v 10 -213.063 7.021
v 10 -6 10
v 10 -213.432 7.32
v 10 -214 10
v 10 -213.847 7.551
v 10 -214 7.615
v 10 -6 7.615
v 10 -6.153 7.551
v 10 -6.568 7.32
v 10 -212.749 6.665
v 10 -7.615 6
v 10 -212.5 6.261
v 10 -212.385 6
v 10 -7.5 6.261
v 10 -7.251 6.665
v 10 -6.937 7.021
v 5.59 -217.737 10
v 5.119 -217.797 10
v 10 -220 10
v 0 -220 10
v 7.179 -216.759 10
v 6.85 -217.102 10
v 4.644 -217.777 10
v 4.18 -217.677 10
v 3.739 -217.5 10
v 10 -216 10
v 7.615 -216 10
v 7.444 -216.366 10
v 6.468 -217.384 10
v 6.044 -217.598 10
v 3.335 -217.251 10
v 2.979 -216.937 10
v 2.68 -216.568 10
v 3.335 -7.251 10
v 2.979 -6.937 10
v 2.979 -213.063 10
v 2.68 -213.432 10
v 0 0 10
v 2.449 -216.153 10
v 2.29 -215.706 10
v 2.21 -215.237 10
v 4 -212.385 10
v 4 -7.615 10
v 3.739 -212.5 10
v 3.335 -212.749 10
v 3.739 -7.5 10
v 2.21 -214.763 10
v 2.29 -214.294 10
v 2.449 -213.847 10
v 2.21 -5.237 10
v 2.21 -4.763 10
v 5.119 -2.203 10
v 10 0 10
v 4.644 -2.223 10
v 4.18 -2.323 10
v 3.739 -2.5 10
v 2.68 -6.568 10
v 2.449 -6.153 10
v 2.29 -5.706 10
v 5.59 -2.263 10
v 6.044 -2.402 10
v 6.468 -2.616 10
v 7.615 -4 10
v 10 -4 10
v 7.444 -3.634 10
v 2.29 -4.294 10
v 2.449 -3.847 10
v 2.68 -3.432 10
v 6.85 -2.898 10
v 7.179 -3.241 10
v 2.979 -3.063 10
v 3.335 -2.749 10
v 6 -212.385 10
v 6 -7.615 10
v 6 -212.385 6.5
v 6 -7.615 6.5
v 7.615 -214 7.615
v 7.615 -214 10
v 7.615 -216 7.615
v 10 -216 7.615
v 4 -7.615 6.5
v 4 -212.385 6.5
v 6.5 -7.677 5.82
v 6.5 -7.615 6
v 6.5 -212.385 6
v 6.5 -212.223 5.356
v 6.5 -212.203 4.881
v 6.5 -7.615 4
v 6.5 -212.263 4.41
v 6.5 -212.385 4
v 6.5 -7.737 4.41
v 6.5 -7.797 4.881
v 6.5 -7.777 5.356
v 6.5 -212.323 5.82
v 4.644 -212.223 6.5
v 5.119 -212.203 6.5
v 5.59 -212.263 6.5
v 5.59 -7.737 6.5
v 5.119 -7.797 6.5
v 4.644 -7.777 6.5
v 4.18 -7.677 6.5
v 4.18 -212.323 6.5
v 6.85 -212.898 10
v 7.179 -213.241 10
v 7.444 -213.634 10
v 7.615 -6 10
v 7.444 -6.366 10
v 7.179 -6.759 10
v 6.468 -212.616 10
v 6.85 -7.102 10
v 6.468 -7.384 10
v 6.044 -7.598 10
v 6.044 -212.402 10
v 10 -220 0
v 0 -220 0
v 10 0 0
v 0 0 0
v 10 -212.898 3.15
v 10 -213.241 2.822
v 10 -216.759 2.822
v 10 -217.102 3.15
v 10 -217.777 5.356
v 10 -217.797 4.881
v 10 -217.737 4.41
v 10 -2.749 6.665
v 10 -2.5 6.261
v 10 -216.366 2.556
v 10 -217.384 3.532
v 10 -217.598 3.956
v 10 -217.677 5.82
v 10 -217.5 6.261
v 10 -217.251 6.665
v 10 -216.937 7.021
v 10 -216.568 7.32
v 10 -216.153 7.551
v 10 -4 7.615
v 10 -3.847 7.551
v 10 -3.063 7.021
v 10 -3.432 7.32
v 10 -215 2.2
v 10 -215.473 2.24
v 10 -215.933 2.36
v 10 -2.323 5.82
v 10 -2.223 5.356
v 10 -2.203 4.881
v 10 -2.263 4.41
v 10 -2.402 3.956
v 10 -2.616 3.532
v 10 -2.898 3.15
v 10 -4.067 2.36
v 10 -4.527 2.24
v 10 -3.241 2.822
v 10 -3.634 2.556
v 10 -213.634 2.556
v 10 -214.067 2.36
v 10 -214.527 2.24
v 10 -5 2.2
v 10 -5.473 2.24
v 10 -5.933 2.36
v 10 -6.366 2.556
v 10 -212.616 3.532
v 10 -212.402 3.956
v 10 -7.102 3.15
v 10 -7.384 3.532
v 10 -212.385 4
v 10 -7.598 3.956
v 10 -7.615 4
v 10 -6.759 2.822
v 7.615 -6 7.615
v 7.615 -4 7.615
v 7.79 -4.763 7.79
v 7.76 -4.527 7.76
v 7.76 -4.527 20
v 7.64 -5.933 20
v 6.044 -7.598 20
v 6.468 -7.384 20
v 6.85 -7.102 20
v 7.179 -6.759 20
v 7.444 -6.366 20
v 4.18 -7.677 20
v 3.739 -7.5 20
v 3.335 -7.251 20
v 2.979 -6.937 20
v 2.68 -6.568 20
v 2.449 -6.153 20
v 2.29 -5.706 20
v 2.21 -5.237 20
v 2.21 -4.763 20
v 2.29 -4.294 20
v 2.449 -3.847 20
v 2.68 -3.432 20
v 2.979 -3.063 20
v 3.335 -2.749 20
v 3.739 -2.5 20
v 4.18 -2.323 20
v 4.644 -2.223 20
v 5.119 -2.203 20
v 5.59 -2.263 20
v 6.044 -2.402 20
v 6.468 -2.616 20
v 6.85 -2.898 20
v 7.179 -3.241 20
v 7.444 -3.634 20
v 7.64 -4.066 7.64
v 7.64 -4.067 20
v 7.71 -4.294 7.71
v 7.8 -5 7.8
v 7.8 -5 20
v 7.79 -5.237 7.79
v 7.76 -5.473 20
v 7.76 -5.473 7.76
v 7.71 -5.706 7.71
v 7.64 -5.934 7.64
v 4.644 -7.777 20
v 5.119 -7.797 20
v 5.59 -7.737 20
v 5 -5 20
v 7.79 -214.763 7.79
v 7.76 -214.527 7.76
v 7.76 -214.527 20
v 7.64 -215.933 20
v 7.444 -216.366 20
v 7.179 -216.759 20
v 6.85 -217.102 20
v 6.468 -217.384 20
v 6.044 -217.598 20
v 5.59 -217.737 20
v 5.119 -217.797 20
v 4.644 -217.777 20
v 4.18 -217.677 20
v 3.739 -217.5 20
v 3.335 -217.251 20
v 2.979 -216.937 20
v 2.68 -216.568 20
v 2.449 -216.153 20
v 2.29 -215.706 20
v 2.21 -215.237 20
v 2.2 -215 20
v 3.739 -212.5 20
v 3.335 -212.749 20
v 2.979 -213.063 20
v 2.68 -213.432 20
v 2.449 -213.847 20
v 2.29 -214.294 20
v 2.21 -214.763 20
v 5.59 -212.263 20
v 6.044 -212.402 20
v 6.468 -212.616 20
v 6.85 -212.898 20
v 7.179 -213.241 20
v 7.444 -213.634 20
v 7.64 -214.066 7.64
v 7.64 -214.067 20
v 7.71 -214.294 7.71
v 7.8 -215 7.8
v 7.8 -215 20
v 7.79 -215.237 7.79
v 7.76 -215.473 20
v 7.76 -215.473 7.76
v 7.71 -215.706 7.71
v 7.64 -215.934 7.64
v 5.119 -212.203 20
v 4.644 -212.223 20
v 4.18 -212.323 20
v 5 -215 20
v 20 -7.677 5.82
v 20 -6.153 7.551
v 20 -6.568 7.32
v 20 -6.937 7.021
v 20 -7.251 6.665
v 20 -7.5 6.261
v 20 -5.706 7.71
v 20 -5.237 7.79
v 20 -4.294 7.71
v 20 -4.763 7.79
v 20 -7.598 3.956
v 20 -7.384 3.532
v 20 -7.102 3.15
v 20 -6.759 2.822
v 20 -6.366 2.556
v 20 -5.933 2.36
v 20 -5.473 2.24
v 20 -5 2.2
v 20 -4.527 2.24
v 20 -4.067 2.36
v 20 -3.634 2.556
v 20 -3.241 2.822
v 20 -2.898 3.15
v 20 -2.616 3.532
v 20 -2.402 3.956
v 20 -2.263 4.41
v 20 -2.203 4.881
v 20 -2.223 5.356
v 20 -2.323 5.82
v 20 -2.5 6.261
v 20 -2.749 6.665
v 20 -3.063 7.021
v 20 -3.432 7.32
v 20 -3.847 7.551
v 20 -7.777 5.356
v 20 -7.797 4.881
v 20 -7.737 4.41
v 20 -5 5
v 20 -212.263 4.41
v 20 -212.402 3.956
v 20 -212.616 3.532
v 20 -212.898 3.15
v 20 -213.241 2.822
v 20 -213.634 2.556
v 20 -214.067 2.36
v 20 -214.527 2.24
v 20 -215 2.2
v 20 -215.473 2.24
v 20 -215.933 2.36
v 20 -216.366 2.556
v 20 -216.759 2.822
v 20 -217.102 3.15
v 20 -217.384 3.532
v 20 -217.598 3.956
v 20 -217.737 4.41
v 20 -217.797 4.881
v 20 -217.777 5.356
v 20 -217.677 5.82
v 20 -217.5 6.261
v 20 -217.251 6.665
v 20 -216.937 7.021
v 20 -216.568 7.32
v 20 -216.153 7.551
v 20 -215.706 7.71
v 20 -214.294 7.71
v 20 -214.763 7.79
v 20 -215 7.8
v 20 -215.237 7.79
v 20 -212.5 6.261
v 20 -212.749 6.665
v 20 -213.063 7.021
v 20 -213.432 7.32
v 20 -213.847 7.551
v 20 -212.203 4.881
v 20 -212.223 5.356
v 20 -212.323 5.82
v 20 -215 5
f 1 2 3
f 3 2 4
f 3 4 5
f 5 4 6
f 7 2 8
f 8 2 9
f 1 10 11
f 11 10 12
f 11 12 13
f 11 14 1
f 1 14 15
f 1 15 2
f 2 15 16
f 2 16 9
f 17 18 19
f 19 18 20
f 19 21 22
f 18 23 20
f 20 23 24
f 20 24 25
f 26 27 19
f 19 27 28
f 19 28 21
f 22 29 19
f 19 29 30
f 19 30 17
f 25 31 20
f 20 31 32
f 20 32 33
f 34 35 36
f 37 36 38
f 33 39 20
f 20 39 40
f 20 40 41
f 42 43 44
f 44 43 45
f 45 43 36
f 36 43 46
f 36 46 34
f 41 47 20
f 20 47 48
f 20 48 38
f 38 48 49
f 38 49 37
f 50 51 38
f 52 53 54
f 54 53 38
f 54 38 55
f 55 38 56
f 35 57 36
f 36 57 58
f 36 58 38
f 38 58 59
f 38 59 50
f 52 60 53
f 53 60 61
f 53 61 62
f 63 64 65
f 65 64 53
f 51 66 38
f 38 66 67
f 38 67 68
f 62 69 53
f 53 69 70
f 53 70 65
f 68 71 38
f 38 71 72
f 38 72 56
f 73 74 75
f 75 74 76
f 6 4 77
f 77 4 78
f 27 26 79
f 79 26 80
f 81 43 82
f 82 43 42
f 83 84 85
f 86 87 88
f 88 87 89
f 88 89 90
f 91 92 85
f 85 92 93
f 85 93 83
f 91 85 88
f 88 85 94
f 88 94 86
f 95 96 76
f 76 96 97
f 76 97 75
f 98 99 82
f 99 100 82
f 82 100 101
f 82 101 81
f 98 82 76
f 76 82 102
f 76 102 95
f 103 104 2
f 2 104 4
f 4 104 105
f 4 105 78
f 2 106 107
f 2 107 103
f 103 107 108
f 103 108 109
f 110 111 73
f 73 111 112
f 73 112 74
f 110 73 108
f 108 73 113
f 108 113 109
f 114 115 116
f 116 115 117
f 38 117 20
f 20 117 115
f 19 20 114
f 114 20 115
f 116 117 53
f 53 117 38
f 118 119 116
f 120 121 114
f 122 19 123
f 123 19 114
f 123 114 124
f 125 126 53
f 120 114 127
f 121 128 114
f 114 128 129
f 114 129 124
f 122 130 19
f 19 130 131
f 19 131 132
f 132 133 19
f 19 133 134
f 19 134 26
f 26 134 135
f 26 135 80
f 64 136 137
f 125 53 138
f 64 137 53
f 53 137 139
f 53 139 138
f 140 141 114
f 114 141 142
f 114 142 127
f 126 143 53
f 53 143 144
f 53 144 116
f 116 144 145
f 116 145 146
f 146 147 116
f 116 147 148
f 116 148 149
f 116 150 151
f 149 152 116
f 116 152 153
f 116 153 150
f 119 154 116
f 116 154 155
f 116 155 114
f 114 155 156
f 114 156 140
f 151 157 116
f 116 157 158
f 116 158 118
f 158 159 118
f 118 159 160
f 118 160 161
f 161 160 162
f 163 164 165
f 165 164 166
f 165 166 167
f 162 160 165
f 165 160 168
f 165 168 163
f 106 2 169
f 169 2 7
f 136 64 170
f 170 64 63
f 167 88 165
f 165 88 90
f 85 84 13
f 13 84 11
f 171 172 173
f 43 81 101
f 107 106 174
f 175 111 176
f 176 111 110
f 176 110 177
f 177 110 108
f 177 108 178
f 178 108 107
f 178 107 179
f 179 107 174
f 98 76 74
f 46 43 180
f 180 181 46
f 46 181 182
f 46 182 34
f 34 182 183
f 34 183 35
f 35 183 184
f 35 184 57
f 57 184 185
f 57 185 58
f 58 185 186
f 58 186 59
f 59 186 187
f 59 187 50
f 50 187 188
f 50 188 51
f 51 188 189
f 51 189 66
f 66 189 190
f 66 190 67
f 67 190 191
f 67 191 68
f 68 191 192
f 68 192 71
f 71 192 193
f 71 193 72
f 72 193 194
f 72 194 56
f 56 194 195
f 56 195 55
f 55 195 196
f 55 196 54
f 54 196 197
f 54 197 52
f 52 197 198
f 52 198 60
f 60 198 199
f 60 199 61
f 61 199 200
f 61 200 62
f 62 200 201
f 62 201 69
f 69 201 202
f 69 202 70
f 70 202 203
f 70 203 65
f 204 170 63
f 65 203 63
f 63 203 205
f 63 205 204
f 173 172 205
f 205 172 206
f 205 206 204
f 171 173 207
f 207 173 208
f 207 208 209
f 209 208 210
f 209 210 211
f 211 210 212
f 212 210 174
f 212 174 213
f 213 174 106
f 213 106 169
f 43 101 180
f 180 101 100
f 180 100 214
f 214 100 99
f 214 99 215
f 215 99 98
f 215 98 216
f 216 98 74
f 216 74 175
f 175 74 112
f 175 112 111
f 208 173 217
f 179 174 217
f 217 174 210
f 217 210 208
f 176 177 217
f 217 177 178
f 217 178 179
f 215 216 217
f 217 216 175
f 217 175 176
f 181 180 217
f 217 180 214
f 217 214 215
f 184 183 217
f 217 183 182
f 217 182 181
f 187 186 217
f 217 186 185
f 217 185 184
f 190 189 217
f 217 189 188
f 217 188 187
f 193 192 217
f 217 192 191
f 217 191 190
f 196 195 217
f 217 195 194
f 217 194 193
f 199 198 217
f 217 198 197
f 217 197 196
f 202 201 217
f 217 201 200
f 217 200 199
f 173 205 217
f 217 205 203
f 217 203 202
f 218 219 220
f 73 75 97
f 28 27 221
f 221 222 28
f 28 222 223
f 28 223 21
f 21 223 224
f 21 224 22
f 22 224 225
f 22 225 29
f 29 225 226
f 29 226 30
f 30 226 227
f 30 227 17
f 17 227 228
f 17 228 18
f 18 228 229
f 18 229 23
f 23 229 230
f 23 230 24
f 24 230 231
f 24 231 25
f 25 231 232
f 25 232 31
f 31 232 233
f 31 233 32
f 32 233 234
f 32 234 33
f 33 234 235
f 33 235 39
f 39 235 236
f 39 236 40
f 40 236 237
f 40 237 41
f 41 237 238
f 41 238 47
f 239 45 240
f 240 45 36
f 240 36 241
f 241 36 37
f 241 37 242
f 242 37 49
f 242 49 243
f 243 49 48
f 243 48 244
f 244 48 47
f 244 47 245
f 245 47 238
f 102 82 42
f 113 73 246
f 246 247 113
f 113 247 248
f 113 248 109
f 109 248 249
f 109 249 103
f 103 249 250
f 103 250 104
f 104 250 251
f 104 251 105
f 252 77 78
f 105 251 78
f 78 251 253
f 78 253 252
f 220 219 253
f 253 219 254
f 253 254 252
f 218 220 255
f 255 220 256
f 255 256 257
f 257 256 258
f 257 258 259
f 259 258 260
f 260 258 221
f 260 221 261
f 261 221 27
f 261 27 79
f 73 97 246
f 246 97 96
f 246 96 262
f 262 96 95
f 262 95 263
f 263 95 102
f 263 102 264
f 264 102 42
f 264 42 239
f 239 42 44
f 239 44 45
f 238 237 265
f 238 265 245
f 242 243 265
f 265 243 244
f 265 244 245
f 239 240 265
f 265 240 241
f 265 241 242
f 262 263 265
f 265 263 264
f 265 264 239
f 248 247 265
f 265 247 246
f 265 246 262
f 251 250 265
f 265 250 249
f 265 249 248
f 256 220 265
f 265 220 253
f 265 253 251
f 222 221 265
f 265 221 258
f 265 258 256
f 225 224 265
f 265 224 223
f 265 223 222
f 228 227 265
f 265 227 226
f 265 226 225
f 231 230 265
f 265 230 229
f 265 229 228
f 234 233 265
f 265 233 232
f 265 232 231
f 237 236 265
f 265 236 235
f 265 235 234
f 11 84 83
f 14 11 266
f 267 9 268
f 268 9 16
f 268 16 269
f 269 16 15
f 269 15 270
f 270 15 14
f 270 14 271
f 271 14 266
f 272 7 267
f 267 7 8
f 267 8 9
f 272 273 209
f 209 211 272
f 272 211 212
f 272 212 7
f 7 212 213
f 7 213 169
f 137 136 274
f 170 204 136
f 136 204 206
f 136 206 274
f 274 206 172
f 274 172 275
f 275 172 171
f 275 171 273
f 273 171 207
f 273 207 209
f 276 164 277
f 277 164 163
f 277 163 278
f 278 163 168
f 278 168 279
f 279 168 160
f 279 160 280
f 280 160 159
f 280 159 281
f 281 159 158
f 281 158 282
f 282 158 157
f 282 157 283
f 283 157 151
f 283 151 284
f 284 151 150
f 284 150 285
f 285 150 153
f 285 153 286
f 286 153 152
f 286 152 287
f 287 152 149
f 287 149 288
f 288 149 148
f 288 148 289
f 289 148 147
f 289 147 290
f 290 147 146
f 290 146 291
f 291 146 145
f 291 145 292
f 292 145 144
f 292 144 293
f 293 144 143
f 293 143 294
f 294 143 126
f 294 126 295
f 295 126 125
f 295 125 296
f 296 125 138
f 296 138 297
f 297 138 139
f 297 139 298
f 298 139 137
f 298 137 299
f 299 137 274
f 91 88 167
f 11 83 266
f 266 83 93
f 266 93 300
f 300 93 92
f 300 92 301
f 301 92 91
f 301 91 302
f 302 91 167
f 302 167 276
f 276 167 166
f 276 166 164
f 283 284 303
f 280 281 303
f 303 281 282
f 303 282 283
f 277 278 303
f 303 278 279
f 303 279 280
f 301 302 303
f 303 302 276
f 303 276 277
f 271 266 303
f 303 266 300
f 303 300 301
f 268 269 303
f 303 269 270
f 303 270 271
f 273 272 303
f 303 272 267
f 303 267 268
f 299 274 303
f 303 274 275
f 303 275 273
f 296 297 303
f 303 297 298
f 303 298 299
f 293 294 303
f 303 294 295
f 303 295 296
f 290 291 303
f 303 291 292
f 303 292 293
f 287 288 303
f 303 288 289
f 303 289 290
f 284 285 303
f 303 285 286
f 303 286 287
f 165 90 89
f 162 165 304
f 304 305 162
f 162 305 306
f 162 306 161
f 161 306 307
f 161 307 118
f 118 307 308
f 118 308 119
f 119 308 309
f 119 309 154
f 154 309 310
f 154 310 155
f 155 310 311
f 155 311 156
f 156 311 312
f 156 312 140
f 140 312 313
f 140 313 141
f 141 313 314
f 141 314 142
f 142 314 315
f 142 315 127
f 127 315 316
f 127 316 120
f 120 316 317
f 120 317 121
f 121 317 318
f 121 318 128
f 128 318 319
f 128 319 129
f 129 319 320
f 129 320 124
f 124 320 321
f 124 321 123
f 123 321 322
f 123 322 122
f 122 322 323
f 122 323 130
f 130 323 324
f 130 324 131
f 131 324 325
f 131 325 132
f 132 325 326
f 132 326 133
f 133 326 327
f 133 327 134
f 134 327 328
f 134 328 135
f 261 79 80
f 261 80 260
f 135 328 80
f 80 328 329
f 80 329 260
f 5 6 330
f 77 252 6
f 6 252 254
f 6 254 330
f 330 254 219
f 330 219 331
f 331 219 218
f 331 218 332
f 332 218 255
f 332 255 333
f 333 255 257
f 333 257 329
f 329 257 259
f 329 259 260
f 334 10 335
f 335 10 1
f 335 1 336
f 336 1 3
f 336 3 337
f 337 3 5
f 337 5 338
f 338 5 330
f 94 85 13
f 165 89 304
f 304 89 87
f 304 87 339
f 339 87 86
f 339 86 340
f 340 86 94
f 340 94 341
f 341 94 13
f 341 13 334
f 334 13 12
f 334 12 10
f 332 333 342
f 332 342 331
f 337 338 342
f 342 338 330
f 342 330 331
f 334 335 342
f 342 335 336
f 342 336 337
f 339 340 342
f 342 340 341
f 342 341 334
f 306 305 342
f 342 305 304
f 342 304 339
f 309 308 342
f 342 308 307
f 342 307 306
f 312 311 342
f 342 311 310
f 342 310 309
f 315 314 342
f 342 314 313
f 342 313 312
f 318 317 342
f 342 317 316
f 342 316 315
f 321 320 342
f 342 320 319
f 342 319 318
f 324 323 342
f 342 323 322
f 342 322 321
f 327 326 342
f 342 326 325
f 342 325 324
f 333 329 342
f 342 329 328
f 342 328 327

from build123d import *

# Parameters (mm, degrees)
CROQUIS2_W                   = 220
CROQUIS2_H                   = 220
CROQUIS2_W_2                 = 200
CROQUIS2_H_2                 = 200
SALIENTE_EXTRUIR1_DEPTH      = 10
CROQUIS3_W                   = 212
CROQUIS3_H                   = 212
CROQUIS3_W_2                 = 210
CROQUIS3_H_2                 = 210
CROQUIS3_W_3                 = 208
CROQUIS3_H_3                 = 208
CORTAR_EXTRUIR1_DEPTH        = 3.5
CROQUIS4_W                   = 10
CROQUIS4_H                   = 10
SALIENTE_EXTRUIR2_DEPTH      = 200
SALIENTE_EXTRUIR2_DEPTH_BACK = 10
CROQUIS6_W                   = 3.5
CROQUIS6_H                   = 2
CROQUIS6_W_2                 = 2
CROQUIS6_H_2                 = 3.5
CROQUIS6_W_3                 = 1.99805467
CORTAR_EXTRUIR2_DEPTH        = 203.5
CROQUIS7_W                   = 220
CROQUIS7_H                   = 220
CROQUIS7_W_2                 = 200
CROQUIS7_H_2                 = 200
SALIENTE_EXTRUIR3_DEPTH      = 10
CORTAR_EXTRUIR3_START        = -3.5
CROQUIS8_W                   = 207
CROQUIS8_H                   = 2
CORTAR_EXTRUIR3_DEPTH        = 207
MATRIZC1_COUNT               = 4
CROQUIS9_W                   = 86
CROQUIS9_H                   = 16
BRAZOS_DEPTH                 = 10
MATRIZC2_COUNT               = 4
CROQUIS10_W                  = 237.555255491
CROQUIS10_H                  = 247.362549521
CORTAR_EXTRUIR4_DEPTH        = 221
CROQUIS11_W                  = 253.49457107
CROQUIS11_H                  = 258.277976667
CORTAR_EXTRUIR5_DEPTH        = 11
SALIENTE_EXTRUIR4_START      = -6
CROQUIS12_R                  = 2.8
SALIENTE_EXTRUIR4_DEPTH      = 16
CROQUIS13_R                  = 2.8
SALIENTE_EXTRUIR5_DEPTH      = 10
SALIENTE_EXTRUIR5_DEPTH_BACK = 10


with BuildPart() as part:
    # Croquis2 → Saliente-Extruir1 (new body)
    with BuildSketch(Plane.XY):
        with Locations((110, -110)):
            Rectangle(CROQUIS2_W, CROQUIS2_H)
        with Locations((110, -110)):
            Rectangle(CROQUIS2_W_2, CROQUIS2_H_2, mode=Mode.SUBTRACT)
    extrude(amount=SALIENTE_EXTRUIR1_DEPTH)

    # Croquis3 → Cortar-Extruir1 (cut)
    with BuildSketch(Plane.XY.offset(10)):
        with Locations((110, -110)):
            Rectangle(CROQUIS3_W, CROQUIS3_H)
        with Locations((110, -110)):
            Rectangle(CROQUIS3_W_2, CROQUIS3_H_2, mode=Mode.SUBTRACT)
        with Locations((110, -110)):
            Rectangle(CROQUIS3_W_2, CROQUIS3_H_2)
        with Locations((110, -110)):
            Rectangle(CROQUIS3_W_3, CROQUIS3_H_3, mode=Mode.SUBTRACT)
    extrude(amount=-CORTAR_EXTRUIR1_DEPTH, mode=Mode.SUBTRACT)

    # Croquis4 → Saliente-Extruir2 (add, two sides)
    with BuildSketch(Plane.XY.offset(10)) as saliente_extruir2_sk:
        with Locations((5, -5)):
            Rectangle(CROQUIS4_W, CROQUIS4_H)
        with Locations((215, -5)):
            Rectangle(CROQUIS4_W, CROQUIS4_H)
        with Locations((215, -215)):
            Rectangle(CROQUIS4_W, CROQUIS4_H)
        with Locations((5, -215)):
            Rectangle(CROQUIS4_W, CROQUIS4_H)
    extrude(amount=SALIENTE_EXTRUIR2_DEPTH)
    extrude(saliente_extruir2_sk.sketch, amount=-SALIENTE_EXTRUIR2_DEPTH_BACK)

    # Croquis6 → Cortar-Extruir2 (cut)
    with BuildSketch(Plane.XY.offset(210)):
        with Locations((8.25, -5)):
            Rectangle(CROQUIS6_W, CROQUIS6_H)
        with Locations((5, -8.25)):
            Rectangle(CROQUIS6_W_2, CROQUIS6_H_2)
        with Locations((211.75, -5)):
            Rectangle(CROQUIS6_W, CROQUIS6_H)
        with Locations((215, -8.25)):
            Rectangle(CROQUIS6_W_2, CROQUIS6_H_2)
        with Locations((211.75, -215)):
            Rectangle(CROQUIS6_W, CROQUIS6_H)
        with Locations((215.000972665, -211.75)):
            Rectangle(CROQUIS6_W_3, CROQUIS6_H_2)
        with Locations((5, -211.75)):
            Rectangle(CROQUIS6_W_2, CROQUIS6_H_2)
        with Locations((8.25, -215)):
            Rectangle(CROQUIS6_W, CROQUIS6_H)
    extrude(amount=-CORTAR_EXTRUIR2_DEPTH, mode=Mode.SUBTRACT)

    # Croquis7 → Saliente-Extruir3 (add)
    with BuildSketch(Plane.XY.offset(210)):
        with Locations((110, -110)):
            Rectangle(CROQUIS7_W, CROQUIS7_H)
        with Locations((110, -110)):
            Rectangle(CROQUIS7_W_2, CROQUIS7_H_2, mode=Mode.SUBTRACT)
    extrude(amount=SALIENTE_EXTRUIR3_DEPTH)

    # Croquis8 → Cortar-Extruir3 (cut)
    with BuildSketch(Plane(origin=(0, -210, 0), x_dir=(1, 0, 0), z_dir=(0, 1, 0)).offset(CORTAR_EXTRUIR3_START)):
        with Locations((110, -215)):
            Rectangle(CROQUIS8_W, CROQUIS8_H)
    cortar_extruir3 = extrude(amount=CORTAR_EXTRUIR3_DEPTH, mode=Mode.SUBTRACT)

    # MatrizC1: Cortar-Extruir3 ×4 about axis
    matrizc1_axis = Axis((0, -110, 110), (1, 0, 0))
    for i in range(1, MATRIZC1_COUNT):
        add(cortar_extruir3.rotate(matrizc1_axis, i * 360 / MATRIZC1_COUNT), mode=Mode.SUBTRACT)

    # Croquis9 → Brazos (add)
    with BuildSketch(Plane.XY.offset(220)):
        with Locations((43, -110)):
            Rectangle(CROQUIS9_W, CROQUIS9_H)
        with BuildLine():
            ThreePointArc((71.801526277, -112.25), (69.551526277, -110), (71.801526277, -107.75))
            Line((71.801526277, -107.75), (75, -107.75))
            ThreePointArc((75, -107.75), (77.25, -110), (75, -112.25))
            Line((75, -112.25), (71.801526277, -112.25))
        make_face(mode=Mode.SUBTRACT)
        with Locations((177, -110)):
            Rectangle(CROQUIS9_W, CROQUIS9_H)
        with BuildLine():
            Line((145, -107.75), (148.198473723, -107.75))
            ThreePointArc((148.198473723, -107.75), (150.448473723, -110), (148.198473723, -112.25))
            Line((148.198473723, -112.25), (145, -112.25))
            ThreePointArc((145, -112.25), (142.75, -110), (145, -107.75))
        make_face(mode=Mode.SUBTRACT)
    extrude(amount=-BRAZOS_DEPTH)

    # MatrizC2: Cortar-Extruir3 ×4 about axis
    matrizc2_axis = Axis((110, 0, 110), (0, 1, 0))
    for i in range(1, MATRIZC2_COUNT):
        add(cortar_extruir3.rotate(matrizc2_axis, i * 360 / MATRIZC2_COUNT), mode=Mode.SUBTRACT)

    # Croquis10 → Cortar-Extruir4 (cut, through all)
    with BuildSketch(Plane.ZY):
        with Locations((128.777627746, -111.472396129)):
            Rectangle(CROQUIS10_W, CROQUIS10_H)
    extrude(amount=-CORTAR_EXTRUIR4_DEPTH, mode=Mode.SUBTRACT)

    # Croquis11 → Cortar-Extruir5 (cut, through all)
    with BuildSketch(Plane.XY.offset(10)):
        with Locations((136.747285535, -106.715640527)):
            Rectangle(CROQUIS11_W, CROQUIS11_H)
    extrude(amount=-CORTAR_EXTRUIR5_DEPTH, mode=Mode.SUBTRACT)

    # Croquis12 → Saliente-Extruir4 (add)
    with BuildSketch(Plane.XY.offset(10).offset(SALIENTE_EXTRUIR4_START)):
        with Locations((5, -5)):
            Circle(CROQUIS12_R)
        with Locations((5, -215)):
            Circle(CROQUIS12_R)
    extrude(amount=SALIENTE_EXTRUIR4_DEPTH)

    # Croquis13 → Saliente-Extruir5 (add, two sides)
    with BuildSketch(Plane(origin=(10, 0, 0), x_dir=(0, 0, -1), z_dir=(1, 0, 0))) as saliente_extruir5_sk:
        with Locations((-5, -5)):
            Circle(CROQUIS13_R)
        with Locations((-5, -215)):
            Circle(CROQUIS13_R)
    extrude(amount=SALIENTE_EXTRUIR5_DEPTH)
    extrude(saliente_extruir5_sk.sketch, amount=-SALIENTE_EXTRUIR5_DEPTH_BACK)


solid = part.part
